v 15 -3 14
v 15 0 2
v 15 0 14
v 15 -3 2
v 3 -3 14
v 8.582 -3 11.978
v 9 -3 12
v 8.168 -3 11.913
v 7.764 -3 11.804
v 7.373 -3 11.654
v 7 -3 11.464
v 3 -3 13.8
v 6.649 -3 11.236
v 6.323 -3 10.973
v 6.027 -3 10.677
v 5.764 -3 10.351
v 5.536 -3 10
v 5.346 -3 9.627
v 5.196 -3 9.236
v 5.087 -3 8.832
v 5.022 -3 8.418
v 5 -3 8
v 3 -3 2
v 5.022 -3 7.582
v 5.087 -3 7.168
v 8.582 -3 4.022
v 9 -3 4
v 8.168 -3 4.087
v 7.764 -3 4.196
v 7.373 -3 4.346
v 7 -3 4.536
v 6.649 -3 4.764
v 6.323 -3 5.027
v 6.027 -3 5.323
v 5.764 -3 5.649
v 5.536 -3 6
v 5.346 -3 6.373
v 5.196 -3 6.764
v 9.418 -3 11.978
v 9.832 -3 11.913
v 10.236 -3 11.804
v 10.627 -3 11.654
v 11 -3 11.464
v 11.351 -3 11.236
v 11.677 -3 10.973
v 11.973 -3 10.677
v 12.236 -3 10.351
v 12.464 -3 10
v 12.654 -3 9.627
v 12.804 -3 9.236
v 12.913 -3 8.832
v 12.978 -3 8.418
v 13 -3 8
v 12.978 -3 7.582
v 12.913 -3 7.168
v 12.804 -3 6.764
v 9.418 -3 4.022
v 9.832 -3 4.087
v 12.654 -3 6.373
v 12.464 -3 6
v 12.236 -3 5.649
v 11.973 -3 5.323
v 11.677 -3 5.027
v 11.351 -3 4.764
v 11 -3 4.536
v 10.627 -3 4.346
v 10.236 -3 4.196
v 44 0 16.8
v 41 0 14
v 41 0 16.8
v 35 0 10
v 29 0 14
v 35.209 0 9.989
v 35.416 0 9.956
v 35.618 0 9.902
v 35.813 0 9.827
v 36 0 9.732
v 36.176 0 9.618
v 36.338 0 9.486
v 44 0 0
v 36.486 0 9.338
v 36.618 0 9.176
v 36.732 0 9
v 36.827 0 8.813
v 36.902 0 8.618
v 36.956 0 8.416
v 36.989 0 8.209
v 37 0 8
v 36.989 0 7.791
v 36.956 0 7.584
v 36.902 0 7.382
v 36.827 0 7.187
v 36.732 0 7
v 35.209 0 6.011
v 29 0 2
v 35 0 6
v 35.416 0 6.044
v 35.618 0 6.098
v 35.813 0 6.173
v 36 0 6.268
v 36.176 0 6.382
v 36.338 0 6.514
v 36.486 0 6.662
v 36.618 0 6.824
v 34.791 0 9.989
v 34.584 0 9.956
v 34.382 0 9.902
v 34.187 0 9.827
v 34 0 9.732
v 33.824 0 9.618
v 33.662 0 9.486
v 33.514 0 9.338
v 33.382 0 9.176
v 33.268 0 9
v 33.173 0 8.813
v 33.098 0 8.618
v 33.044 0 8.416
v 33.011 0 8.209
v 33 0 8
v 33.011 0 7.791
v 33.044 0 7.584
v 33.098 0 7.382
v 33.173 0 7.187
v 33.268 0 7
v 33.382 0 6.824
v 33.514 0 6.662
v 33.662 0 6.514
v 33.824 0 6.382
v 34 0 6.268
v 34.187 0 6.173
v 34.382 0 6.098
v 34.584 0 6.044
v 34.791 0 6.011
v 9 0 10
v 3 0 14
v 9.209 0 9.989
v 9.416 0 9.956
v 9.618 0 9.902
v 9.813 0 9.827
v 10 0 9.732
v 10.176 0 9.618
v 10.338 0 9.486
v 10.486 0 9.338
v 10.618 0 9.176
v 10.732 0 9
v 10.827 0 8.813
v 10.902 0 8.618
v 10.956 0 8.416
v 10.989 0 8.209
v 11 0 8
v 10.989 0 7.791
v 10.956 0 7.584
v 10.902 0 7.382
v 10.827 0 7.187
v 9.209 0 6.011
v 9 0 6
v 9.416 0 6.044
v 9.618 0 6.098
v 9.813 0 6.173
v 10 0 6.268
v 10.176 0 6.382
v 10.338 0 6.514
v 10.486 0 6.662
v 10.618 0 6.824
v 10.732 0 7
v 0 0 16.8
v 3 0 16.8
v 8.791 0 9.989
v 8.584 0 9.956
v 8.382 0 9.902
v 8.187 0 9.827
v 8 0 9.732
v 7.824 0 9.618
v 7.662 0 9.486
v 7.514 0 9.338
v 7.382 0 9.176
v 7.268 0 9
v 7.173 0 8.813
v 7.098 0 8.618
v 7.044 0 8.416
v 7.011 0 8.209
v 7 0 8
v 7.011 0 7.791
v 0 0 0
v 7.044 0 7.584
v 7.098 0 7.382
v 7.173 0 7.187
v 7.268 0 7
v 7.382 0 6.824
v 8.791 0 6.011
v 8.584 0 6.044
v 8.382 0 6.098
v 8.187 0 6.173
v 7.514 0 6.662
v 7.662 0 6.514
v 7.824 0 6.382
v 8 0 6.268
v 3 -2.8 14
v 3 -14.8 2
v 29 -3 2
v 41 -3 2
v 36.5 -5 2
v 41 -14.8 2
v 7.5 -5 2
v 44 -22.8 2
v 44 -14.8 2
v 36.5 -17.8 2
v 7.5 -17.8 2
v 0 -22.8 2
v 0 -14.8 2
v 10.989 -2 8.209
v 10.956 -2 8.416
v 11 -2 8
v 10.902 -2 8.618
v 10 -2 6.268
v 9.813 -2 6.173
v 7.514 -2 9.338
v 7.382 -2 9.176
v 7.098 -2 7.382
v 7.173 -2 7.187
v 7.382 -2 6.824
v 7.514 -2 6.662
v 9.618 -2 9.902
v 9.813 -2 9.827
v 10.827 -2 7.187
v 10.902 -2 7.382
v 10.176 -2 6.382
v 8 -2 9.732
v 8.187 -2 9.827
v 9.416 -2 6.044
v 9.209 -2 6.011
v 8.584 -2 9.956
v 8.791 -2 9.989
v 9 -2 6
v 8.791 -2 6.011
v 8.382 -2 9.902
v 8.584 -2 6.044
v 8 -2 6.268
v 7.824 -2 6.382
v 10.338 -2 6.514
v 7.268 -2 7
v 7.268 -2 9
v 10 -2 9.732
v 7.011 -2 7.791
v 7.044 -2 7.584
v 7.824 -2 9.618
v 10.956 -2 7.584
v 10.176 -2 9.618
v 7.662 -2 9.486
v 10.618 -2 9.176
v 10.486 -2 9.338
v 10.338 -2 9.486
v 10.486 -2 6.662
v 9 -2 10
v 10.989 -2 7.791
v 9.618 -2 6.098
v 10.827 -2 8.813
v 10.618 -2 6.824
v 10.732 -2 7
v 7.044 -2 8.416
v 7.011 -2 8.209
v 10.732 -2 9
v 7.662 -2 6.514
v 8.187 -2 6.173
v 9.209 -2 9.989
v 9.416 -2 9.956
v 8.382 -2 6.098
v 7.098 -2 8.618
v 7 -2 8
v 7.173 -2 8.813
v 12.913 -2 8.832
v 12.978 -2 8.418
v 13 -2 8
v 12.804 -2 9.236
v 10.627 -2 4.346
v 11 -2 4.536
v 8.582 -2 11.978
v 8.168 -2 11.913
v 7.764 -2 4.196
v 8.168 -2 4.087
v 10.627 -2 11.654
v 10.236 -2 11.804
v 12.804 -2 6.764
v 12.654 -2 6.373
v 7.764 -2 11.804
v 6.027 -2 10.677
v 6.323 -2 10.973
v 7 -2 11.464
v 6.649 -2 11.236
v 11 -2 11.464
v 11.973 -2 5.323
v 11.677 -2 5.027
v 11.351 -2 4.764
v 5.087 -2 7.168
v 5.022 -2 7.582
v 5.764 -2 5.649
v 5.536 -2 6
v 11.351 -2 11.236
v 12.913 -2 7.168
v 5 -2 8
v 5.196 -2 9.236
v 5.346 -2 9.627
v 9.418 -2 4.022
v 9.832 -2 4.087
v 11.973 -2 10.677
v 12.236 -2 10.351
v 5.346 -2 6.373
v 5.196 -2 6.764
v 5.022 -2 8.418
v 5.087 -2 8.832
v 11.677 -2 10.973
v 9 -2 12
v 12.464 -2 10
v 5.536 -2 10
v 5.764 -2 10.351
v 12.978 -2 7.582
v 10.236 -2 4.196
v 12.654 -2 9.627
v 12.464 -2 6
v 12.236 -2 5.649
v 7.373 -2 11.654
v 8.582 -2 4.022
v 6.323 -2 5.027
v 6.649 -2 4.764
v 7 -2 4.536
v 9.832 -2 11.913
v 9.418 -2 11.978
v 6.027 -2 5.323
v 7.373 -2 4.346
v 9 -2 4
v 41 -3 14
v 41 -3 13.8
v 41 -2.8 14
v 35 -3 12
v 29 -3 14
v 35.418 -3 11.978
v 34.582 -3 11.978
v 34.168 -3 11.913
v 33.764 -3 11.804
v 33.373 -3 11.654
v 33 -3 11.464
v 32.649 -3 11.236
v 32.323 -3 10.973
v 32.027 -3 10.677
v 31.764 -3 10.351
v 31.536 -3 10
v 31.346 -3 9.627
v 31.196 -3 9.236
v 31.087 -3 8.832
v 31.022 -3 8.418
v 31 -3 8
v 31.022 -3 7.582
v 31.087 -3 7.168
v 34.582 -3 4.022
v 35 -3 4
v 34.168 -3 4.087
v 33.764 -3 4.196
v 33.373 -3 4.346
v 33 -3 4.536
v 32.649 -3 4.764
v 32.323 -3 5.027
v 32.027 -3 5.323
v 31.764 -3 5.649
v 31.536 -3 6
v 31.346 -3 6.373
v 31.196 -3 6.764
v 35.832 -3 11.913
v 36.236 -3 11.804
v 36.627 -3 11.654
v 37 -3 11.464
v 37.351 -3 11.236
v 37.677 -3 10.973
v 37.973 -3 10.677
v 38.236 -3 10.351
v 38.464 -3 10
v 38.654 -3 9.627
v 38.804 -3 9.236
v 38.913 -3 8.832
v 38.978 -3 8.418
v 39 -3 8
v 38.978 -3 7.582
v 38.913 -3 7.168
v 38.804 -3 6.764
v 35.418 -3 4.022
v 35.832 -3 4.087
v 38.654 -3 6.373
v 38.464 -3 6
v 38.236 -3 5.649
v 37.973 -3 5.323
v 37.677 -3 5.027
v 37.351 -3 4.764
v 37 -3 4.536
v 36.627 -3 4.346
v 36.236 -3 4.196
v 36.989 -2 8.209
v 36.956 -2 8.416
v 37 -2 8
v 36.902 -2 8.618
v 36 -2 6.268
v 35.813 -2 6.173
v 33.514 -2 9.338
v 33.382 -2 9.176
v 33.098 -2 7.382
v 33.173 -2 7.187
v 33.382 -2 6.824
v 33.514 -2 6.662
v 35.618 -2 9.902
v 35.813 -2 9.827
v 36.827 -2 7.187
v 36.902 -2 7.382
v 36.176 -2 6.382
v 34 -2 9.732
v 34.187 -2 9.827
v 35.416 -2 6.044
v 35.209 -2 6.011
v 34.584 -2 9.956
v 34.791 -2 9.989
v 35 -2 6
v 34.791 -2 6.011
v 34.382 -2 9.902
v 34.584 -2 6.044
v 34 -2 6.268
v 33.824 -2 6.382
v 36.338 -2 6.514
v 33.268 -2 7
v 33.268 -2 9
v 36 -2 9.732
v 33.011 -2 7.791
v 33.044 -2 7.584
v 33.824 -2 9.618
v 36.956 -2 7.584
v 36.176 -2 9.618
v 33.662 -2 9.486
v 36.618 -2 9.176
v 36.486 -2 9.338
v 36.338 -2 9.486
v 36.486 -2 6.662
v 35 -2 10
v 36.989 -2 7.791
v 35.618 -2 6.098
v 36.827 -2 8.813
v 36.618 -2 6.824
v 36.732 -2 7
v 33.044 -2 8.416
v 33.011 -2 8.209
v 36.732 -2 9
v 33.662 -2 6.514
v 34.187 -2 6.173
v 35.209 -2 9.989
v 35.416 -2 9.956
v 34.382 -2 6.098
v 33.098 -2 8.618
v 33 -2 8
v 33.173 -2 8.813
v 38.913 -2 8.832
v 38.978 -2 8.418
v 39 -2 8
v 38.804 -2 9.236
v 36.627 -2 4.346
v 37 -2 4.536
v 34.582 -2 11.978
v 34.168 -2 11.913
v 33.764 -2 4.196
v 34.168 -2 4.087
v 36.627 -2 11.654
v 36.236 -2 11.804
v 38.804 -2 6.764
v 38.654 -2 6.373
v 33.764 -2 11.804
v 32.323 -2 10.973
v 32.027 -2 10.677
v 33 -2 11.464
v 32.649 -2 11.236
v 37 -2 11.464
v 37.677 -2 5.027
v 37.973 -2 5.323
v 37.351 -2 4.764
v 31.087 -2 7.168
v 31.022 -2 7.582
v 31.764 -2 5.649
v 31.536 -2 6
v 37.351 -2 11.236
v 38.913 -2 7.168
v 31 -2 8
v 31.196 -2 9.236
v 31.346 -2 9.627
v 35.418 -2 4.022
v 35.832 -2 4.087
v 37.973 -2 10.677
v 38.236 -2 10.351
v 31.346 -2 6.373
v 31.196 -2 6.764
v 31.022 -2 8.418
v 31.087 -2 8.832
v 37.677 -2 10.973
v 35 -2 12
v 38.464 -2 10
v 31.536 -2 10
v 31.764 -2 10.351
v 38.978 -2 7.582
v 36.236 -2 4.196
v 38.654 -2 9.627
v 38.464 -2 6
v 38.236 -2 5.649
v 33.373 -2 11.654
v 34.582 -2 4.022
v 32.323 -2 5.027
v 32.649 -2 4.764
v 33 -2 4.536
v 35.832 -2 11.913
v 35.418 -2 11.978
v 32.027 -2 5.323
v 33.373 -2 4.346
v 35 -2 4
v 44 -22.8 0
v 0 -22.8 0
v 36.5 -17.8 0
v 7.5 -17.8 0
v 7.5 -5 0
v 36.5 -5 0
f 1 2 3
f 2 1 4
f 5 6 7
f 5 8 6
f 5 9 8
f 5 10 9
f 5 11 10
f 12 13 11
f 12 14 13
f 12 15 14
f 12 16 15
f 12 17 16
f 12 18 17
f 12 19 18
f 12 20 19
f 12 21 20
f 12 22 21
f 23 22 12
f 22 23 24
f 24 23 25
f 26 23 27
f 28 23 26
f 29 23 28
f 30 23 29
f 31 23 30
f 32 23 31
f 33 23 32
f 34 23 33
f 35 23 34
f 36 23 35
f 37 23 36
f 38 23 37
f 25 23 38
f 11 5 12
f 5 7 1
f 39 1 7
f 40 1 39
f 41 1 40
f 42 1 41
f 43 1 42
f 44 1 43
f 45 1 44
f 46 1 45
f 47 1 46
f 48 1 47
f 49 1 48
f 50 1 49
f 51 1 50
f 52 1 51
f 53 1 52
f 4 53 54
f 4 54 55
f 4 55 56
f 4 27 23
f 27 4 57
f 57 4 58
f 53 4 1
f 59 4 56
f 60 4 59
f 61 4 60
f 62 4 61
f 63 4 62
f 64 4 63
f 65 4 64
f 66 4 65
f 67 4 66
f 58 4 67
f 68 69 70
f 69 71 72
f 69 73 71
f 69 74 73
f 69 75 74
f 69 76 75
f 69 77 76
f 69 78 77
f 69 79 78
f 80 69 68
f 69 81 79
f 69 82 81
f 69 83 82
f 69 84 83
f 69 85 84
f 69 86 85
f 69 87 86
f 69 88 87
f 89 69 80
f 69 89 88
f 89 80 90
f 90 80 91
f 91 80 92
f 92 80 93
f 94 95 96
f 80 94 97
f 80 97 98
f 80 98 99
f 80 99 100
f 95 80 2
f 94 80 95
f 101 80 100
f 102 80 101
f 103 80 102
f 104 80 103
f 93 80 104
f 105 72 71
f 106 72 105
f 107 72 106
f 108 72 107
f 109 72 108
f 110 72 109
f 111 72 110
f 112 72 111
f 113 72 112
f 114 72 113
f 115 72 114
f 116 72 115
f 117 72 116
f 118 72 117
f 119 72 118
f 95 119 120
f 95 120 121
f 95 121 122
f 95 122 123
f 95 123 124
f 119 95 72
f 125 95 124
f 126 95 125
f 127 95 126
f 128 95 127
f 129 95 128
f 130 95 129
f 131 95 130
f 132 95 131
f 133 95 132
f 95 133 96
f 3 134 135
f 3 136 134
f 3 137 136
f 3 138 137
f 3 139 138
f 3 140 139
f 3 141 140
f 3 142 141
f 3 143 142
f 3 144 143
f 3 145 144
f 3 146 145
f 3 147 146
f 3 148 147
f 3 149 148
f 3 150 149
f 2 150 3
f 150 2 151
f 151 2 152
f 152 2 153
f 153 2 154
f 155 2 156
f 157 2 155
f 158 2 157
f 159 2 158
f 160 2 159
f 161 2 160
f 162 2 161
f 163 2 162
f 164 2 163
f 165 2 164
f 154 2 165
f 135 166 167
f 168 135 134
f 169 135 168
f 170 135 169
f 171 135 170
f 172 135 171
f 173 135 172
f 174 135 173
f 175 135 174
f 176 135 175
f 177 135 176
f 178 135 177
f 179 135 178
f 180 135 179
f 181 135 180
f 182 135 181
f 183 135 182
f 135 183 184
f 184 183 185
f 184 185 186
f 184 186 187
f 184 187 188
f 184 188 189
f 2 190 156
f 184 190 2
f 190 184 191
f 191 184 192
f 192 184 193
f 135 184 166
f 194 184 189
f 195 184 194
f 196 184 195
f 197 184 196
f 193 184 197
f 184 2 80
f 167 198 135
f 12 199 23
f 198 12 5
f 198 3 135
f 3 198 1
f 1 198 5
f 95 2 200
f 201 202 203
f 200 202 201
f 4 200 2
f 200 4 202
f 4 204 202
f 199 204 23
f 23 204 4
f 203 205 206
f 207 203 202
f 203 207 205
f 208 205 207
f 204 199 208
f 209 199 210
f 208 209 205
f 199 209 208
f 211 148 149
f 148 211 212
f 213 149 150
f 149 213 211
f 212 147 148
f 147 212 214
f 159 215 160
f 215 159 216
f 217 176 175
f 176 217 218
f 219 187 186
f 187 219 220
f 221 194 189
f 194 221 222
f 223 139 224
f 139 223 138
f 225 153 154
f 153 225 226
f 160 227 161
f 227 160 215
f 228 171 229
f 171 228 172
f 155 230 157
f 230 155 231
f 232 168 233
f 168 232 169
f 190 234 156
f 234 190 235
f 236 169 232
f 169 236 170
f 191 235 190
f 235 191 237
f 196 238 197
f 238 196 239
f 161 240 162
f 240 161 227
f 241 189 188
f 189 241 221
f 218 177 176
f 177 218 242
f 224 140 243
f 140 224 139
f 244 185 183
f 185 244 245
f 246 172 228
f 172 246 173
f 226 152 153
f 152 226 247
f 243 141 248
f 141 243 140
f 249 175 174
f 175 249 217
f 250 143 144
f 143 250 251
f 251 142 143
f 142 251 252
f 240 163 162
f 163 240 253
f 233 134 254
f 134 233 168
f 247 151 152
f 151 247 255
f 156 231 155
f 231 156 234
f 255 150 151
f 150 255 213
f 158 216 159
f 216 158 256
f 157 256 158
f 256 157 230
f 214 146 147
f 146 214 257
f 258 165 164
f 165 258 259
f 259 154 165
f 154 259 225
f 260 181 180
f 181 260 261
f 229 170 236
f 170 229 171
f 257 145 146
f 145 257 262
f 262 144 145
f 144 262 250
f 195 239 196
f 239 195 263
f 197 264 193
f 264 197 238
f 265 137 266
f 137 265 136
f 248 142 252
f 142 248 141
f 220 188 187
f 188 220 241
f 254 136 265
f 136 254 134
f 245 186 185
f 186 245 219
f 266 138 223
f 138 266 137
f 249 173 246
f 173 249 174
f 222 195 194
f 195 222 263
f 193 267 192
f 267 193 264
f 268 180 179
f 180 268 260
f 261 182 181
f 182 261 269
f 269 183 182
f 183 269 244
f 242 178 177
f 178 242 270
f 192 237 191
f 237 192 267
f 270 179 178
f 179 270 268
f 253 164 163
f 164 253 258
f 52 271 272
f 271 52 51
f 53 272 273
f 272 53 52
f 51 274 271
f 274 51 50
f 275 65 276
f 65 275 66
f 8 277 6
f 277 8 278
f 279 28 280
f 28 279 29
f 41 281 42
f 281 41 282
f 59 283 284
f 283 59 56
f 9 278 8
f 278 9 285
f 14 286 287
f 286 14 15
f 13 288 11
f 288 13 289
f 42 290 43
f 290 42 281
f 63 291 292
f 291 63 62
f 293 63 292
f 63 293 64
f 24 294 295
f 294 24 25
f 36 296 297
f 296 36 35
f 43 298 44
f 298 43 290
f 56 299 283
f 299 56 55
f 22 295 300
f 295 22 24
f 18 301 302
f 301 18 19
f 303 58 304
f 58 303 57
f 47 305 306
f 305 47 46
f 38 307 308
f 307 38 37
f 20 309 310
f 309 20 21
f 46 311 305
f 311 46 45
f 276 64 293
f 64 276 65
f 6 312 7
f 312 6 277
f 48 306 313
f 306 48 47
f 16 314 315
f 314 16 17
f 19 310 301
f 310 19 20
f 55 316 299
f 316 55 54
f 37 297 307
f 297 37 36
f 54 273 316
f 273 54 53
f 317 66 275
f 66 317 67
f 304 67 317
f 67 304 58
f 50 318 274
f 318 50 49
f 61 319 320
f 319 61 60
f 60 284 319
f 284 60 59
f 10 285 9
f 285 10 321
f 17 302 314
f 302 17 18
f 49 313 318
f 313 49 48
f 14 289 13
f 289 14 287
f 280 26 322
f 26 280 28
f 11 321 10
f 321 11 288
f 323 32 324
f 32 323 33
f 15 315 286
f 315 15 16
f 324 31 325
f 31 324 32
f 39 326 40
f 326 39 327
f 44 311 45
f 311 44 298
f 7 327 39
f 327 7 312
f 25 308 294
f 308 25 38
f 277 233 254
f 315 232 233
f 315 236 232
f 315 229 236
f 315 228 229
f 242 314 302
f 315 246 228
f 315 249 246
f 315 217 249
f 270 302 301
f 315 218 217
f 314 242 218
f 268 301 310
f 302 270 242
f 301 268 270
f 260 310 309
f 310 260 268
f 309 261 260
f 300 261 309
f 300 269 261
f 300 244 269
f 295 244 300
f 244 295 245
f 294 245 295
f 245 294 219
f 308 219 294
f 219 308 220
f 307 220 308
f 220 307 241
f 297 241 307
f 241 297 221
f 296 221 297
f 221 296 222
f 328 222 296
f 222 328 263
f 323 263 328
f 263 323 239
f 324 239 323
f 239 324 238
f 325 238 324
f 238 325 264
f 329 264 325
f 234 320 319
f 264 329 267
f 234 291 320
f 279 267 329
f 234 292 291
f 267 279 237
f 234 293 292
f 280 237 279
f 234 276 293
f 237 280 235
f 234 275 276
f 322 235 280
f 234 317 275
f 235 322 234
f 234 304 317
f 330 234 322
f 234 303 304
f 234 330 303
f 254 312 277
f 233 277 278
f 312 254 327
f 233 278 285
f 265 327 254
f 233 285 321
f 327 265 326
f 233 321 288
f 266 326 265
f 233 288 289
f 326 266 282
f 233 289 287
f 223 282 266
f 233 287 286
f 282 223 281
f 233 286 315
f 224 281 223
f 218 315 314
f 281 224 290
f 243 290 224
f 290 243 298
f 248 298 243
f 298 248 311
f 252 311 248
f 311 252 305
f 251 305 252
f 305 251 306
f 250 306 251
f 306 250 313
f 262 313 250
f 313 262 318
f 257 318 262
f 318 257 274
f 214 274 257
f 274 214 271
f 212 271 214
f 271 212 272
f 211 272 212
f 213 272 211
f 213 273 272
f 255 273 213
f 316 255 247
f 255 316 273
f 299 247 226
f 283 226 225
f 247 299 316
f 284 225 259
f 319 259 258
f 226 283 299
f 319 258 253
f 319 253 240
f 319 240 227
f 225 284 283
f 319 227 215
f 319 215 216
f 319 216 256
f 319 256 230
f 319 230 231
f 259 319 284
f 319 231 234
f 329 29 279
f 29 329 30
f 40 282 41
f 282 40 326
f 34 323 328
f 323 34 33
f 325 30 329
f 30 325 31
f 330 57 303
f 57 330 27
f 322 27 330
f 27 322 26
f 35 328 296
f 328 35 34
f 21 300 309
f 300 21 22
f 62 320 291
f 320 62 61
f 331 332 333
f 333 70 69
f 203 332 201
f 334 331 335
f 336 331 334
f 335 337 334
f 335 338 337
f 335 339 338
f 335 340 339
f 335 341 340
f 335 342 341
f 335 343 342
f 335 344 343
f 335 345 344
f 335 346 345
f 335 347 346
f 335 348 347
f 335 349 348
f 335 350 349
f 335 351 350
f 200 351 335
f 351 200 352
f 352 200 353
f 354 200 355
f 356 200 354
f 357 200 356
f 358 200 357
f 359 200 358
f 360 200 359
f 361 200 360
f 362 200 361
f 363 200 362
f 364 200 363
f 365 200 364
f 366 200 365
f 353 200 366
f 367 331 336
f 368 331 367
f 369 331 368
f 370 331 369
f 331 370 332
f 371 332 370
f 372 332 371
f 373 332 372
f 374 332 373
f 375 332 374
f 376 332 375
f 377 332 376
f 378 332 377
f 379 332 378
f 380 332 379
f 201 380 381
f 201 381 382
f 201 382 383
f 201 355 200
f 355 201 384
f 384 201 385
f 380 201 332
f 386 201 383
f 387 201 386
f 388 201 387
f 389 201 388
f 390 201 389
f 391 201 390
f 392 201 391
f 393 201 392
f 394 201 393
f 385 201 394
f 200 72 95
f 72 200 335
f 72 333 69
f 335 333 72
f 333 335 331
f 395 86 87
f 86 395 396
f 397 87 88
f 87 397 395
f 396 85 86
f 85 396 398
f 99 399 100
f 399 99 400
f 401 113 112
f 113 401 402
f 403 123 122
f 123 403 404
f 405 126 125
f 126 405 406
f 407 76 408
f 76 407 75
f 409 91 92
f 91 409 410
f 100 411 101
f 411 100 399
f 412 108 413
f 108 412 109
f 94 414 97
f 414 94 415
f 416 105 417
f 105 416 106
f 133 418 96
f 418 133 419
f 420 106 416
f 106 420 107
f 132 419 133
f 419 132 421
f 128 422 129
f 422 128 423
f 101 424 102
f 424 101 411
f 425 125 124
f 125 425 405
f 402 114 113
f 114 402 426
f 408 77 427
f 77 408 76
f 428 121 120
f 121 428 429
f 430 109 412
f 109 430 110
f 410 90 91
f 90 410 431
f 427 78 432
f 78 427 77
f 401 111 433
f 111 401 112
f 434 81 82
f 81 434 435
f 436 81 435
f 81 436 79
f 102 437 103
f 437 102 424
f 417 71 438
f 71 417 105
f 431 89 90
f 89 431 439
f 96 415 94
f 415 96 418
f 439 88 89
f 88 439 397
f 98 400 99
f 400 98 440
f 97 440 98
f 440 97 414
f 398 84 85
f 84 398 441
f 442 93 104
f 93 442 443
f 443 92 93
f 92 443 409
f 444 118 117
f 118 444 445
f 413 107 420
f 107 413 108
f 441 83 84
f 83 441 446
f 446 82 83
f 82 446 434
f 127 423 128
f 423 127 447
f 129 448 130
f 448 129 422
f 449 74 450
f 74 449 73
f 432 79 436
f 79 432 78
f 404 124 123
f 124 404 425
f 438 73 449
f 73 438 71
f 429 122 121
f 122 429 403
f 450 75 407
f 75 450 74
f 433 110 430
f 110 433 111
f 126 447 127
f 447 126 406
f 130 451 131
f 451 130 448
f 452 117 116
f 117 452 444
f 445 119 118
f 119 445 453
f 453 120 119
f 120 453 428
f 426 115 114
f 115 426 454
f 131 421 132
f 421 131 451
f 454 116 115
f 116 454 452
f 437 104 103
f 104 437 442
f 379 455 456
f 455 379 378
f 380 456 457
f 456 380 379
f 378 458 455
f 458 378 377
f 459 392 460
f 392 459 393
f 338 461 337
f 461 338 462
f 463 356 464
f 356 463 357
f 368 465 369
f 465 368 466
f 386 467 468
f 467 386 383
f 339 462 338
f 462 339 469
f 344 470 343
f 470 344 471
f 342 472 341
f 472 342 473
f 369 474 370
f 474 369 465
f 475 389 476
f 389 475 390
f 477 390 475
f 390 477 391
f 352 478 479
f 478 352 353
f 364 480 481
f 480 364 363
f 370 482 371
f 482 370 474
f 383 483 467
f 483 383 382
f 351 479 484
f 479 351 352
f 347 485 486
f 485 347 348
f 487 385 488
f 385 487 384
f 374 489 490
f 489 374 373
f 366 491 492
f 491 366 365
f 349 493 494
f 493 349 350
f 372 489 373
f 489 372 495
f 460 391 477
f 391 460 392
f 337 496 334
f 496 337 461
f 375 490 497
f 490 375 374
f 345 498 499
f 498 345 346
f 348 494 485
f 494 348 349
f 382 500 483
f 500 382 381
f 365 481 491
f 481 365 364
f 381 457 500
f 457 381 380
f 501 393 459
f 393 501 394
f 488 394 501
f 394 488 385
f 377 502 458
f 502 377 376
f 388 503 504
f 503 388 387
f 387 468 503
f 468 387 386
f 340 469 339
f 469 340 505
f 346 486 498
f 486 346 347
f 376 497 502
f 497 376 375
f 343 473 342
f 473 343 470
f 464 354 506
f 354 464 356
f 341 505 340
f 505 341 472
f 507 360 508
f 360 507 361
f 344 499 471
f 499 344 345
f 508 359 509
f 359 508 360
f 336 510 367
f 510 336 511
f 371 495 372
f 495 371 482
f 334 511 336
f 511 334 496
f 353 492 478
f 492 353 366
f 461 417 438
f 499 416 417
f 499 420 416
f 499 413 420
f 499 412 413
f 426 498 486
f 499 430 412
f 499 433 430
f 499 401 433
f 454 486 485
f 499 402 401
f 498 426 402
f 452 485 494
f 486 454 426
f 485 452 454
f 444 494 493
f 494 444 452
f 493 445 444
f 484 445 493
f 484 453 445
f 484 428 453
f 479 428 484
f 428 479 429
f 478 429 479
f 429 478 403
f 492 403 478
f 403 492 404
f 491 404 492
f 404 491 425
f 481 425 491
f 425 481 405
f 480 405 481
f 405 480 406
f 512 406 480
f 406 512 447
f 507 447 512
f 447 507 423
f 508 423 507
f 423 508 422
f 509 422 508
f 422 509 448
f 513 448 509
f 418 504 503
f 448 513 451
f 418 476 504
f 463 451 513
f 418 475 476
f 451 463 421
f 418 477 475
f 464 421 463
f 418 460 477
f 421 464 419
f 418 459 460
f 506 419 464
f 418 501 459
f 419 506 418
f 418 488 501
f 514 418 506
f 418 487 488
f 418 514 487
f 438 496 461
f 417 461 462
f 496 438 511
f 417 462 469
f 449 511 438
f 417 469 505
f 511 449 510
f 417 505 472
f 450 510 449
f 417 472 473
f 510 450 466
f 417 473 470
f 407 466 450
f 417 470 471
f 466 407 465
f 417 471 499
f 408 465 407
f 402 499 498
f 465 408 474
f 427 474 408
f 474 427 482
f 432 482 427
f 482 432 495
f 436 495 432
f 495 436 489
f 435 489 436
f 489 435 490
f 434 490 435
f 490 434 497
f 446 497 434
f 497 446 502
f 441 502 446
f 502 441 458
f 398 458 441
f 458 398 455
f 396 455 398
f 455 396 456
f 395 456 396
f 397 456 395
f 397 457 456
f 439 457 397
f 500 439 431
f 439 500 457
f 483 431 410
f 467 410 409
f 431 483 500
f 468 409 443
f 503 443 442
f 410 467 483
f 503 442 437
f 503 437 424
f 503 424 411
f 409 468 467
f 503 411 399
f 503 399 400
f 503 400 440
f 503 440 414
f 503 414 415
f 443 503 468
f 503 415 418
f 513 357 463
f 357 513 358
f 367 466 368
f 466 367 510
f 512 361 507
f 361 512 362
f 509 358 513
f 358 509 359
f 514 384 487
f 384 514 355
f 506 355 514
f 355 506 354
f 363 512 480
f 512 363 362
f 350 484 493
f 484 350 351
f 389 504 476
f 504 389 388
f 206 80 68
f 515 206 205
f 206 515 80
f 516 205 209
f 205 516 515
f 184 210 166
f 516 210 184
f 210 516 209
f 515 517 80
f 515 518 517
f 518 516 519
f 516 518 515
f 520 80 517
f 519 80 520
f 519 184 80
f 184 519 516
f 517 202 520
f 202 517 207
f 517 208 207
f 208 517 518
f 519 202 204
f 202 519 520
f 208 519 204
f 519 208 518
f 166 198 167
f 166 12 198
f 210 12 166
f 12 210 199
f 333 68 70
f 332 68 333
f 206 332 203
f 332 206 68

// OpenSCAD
// 3D printed switch mount for an Oslo Switch rocker switch.
// This seems to be a standard size requiring a 14mm by 29mm cutout.
// The mount is intended to be screwed to a horizontal surface
// using 6-32 machine screws.
//
// Note that this needs to be screwed down before the switch
// is snapped in, since the switch body obstructs the screw holes.
// (Bad design? Maybe.)

$fn = 60;

// Note: even though the nominal cutout size is 29mm by 14mm,
// I've reduced it to 29mm by 12.8mm, which seems to yield
// a snug fit.
cutout_w = 29;
cutout_h = 12.8;

// how much additional width and height the plate should have
// beyond the cutout for the switch
extend_w = 15;
extend_h = 10;

// front plate dimensions
plate_w = cutout_w + extend_w;
plate_h = cutout_h + extend_h;
plate_d = 2;

// thickness of triangular braces
brace_d = 3;

// side length (non-hypotenuse) of triangular braces
brace_len = cutout_h + 2;

// hole diameter and countersink diameter for 6-32 machine screw
n6_hole_diameter = 4;
n6_countersink_diameter = 8;

// Screw hole tab parameters
tab_len = n6_countersink_diameter + 4;
tab_h = brace_d;

// The front plate with the cutout for the switch
module plate() {
    difference() {
        cube([plate_w, plate_d, plate_h]);
        
        // cutout
        translate([extend_w/2, -plate_d/2, extend_h/2]) {
            cube([cutout_w, plate_d * 2, cutout_h]);
        }
    }
}

// Triangular brace
module brace() {
    translate([brace_d, 0, 0]) {
        rotate([0, -90, 0]) {
            linear_extrude(brace_d) {
                polygon([[0, 0], [brace_len, 0], [0, brace_len]]);
            }
        }
    }
}

// Tab with screw hole and countersink for attachment to bottom surface
module screw_tab() {
    difference() {
        cube([tab_len, tab_len, tab_h]);
        translate([tab_len/2, tab_len/2, -1]) {
            cylinder(h=tab_h+2, d=n6_hole_diameter);
        }
        translate([tab_len/2, tab_len/2, tab_h - 1]) {
            cylinder(h=2, d=n6_countersink_diameter);
        }
    }
}

// Entire switch mount
module switch_mount() {
    plate();
    translate([0, plate_d, 0]) {
        brace();
    }
    translate([plate_w - brace_d, plate_d, 0]) {
        brace();
    }
    translate([brace_d, plate_d, 0]) {
        screw_tab();
    }
    translate([plate_w - brace_d - tab_len, plate_d, 0]) {
        screw_tab();
    }
}

//plate();
//brace();
//screw_tab();

// rotate face down for printing
rotate([90, 0, 0]) {
    switch_mount();
}
